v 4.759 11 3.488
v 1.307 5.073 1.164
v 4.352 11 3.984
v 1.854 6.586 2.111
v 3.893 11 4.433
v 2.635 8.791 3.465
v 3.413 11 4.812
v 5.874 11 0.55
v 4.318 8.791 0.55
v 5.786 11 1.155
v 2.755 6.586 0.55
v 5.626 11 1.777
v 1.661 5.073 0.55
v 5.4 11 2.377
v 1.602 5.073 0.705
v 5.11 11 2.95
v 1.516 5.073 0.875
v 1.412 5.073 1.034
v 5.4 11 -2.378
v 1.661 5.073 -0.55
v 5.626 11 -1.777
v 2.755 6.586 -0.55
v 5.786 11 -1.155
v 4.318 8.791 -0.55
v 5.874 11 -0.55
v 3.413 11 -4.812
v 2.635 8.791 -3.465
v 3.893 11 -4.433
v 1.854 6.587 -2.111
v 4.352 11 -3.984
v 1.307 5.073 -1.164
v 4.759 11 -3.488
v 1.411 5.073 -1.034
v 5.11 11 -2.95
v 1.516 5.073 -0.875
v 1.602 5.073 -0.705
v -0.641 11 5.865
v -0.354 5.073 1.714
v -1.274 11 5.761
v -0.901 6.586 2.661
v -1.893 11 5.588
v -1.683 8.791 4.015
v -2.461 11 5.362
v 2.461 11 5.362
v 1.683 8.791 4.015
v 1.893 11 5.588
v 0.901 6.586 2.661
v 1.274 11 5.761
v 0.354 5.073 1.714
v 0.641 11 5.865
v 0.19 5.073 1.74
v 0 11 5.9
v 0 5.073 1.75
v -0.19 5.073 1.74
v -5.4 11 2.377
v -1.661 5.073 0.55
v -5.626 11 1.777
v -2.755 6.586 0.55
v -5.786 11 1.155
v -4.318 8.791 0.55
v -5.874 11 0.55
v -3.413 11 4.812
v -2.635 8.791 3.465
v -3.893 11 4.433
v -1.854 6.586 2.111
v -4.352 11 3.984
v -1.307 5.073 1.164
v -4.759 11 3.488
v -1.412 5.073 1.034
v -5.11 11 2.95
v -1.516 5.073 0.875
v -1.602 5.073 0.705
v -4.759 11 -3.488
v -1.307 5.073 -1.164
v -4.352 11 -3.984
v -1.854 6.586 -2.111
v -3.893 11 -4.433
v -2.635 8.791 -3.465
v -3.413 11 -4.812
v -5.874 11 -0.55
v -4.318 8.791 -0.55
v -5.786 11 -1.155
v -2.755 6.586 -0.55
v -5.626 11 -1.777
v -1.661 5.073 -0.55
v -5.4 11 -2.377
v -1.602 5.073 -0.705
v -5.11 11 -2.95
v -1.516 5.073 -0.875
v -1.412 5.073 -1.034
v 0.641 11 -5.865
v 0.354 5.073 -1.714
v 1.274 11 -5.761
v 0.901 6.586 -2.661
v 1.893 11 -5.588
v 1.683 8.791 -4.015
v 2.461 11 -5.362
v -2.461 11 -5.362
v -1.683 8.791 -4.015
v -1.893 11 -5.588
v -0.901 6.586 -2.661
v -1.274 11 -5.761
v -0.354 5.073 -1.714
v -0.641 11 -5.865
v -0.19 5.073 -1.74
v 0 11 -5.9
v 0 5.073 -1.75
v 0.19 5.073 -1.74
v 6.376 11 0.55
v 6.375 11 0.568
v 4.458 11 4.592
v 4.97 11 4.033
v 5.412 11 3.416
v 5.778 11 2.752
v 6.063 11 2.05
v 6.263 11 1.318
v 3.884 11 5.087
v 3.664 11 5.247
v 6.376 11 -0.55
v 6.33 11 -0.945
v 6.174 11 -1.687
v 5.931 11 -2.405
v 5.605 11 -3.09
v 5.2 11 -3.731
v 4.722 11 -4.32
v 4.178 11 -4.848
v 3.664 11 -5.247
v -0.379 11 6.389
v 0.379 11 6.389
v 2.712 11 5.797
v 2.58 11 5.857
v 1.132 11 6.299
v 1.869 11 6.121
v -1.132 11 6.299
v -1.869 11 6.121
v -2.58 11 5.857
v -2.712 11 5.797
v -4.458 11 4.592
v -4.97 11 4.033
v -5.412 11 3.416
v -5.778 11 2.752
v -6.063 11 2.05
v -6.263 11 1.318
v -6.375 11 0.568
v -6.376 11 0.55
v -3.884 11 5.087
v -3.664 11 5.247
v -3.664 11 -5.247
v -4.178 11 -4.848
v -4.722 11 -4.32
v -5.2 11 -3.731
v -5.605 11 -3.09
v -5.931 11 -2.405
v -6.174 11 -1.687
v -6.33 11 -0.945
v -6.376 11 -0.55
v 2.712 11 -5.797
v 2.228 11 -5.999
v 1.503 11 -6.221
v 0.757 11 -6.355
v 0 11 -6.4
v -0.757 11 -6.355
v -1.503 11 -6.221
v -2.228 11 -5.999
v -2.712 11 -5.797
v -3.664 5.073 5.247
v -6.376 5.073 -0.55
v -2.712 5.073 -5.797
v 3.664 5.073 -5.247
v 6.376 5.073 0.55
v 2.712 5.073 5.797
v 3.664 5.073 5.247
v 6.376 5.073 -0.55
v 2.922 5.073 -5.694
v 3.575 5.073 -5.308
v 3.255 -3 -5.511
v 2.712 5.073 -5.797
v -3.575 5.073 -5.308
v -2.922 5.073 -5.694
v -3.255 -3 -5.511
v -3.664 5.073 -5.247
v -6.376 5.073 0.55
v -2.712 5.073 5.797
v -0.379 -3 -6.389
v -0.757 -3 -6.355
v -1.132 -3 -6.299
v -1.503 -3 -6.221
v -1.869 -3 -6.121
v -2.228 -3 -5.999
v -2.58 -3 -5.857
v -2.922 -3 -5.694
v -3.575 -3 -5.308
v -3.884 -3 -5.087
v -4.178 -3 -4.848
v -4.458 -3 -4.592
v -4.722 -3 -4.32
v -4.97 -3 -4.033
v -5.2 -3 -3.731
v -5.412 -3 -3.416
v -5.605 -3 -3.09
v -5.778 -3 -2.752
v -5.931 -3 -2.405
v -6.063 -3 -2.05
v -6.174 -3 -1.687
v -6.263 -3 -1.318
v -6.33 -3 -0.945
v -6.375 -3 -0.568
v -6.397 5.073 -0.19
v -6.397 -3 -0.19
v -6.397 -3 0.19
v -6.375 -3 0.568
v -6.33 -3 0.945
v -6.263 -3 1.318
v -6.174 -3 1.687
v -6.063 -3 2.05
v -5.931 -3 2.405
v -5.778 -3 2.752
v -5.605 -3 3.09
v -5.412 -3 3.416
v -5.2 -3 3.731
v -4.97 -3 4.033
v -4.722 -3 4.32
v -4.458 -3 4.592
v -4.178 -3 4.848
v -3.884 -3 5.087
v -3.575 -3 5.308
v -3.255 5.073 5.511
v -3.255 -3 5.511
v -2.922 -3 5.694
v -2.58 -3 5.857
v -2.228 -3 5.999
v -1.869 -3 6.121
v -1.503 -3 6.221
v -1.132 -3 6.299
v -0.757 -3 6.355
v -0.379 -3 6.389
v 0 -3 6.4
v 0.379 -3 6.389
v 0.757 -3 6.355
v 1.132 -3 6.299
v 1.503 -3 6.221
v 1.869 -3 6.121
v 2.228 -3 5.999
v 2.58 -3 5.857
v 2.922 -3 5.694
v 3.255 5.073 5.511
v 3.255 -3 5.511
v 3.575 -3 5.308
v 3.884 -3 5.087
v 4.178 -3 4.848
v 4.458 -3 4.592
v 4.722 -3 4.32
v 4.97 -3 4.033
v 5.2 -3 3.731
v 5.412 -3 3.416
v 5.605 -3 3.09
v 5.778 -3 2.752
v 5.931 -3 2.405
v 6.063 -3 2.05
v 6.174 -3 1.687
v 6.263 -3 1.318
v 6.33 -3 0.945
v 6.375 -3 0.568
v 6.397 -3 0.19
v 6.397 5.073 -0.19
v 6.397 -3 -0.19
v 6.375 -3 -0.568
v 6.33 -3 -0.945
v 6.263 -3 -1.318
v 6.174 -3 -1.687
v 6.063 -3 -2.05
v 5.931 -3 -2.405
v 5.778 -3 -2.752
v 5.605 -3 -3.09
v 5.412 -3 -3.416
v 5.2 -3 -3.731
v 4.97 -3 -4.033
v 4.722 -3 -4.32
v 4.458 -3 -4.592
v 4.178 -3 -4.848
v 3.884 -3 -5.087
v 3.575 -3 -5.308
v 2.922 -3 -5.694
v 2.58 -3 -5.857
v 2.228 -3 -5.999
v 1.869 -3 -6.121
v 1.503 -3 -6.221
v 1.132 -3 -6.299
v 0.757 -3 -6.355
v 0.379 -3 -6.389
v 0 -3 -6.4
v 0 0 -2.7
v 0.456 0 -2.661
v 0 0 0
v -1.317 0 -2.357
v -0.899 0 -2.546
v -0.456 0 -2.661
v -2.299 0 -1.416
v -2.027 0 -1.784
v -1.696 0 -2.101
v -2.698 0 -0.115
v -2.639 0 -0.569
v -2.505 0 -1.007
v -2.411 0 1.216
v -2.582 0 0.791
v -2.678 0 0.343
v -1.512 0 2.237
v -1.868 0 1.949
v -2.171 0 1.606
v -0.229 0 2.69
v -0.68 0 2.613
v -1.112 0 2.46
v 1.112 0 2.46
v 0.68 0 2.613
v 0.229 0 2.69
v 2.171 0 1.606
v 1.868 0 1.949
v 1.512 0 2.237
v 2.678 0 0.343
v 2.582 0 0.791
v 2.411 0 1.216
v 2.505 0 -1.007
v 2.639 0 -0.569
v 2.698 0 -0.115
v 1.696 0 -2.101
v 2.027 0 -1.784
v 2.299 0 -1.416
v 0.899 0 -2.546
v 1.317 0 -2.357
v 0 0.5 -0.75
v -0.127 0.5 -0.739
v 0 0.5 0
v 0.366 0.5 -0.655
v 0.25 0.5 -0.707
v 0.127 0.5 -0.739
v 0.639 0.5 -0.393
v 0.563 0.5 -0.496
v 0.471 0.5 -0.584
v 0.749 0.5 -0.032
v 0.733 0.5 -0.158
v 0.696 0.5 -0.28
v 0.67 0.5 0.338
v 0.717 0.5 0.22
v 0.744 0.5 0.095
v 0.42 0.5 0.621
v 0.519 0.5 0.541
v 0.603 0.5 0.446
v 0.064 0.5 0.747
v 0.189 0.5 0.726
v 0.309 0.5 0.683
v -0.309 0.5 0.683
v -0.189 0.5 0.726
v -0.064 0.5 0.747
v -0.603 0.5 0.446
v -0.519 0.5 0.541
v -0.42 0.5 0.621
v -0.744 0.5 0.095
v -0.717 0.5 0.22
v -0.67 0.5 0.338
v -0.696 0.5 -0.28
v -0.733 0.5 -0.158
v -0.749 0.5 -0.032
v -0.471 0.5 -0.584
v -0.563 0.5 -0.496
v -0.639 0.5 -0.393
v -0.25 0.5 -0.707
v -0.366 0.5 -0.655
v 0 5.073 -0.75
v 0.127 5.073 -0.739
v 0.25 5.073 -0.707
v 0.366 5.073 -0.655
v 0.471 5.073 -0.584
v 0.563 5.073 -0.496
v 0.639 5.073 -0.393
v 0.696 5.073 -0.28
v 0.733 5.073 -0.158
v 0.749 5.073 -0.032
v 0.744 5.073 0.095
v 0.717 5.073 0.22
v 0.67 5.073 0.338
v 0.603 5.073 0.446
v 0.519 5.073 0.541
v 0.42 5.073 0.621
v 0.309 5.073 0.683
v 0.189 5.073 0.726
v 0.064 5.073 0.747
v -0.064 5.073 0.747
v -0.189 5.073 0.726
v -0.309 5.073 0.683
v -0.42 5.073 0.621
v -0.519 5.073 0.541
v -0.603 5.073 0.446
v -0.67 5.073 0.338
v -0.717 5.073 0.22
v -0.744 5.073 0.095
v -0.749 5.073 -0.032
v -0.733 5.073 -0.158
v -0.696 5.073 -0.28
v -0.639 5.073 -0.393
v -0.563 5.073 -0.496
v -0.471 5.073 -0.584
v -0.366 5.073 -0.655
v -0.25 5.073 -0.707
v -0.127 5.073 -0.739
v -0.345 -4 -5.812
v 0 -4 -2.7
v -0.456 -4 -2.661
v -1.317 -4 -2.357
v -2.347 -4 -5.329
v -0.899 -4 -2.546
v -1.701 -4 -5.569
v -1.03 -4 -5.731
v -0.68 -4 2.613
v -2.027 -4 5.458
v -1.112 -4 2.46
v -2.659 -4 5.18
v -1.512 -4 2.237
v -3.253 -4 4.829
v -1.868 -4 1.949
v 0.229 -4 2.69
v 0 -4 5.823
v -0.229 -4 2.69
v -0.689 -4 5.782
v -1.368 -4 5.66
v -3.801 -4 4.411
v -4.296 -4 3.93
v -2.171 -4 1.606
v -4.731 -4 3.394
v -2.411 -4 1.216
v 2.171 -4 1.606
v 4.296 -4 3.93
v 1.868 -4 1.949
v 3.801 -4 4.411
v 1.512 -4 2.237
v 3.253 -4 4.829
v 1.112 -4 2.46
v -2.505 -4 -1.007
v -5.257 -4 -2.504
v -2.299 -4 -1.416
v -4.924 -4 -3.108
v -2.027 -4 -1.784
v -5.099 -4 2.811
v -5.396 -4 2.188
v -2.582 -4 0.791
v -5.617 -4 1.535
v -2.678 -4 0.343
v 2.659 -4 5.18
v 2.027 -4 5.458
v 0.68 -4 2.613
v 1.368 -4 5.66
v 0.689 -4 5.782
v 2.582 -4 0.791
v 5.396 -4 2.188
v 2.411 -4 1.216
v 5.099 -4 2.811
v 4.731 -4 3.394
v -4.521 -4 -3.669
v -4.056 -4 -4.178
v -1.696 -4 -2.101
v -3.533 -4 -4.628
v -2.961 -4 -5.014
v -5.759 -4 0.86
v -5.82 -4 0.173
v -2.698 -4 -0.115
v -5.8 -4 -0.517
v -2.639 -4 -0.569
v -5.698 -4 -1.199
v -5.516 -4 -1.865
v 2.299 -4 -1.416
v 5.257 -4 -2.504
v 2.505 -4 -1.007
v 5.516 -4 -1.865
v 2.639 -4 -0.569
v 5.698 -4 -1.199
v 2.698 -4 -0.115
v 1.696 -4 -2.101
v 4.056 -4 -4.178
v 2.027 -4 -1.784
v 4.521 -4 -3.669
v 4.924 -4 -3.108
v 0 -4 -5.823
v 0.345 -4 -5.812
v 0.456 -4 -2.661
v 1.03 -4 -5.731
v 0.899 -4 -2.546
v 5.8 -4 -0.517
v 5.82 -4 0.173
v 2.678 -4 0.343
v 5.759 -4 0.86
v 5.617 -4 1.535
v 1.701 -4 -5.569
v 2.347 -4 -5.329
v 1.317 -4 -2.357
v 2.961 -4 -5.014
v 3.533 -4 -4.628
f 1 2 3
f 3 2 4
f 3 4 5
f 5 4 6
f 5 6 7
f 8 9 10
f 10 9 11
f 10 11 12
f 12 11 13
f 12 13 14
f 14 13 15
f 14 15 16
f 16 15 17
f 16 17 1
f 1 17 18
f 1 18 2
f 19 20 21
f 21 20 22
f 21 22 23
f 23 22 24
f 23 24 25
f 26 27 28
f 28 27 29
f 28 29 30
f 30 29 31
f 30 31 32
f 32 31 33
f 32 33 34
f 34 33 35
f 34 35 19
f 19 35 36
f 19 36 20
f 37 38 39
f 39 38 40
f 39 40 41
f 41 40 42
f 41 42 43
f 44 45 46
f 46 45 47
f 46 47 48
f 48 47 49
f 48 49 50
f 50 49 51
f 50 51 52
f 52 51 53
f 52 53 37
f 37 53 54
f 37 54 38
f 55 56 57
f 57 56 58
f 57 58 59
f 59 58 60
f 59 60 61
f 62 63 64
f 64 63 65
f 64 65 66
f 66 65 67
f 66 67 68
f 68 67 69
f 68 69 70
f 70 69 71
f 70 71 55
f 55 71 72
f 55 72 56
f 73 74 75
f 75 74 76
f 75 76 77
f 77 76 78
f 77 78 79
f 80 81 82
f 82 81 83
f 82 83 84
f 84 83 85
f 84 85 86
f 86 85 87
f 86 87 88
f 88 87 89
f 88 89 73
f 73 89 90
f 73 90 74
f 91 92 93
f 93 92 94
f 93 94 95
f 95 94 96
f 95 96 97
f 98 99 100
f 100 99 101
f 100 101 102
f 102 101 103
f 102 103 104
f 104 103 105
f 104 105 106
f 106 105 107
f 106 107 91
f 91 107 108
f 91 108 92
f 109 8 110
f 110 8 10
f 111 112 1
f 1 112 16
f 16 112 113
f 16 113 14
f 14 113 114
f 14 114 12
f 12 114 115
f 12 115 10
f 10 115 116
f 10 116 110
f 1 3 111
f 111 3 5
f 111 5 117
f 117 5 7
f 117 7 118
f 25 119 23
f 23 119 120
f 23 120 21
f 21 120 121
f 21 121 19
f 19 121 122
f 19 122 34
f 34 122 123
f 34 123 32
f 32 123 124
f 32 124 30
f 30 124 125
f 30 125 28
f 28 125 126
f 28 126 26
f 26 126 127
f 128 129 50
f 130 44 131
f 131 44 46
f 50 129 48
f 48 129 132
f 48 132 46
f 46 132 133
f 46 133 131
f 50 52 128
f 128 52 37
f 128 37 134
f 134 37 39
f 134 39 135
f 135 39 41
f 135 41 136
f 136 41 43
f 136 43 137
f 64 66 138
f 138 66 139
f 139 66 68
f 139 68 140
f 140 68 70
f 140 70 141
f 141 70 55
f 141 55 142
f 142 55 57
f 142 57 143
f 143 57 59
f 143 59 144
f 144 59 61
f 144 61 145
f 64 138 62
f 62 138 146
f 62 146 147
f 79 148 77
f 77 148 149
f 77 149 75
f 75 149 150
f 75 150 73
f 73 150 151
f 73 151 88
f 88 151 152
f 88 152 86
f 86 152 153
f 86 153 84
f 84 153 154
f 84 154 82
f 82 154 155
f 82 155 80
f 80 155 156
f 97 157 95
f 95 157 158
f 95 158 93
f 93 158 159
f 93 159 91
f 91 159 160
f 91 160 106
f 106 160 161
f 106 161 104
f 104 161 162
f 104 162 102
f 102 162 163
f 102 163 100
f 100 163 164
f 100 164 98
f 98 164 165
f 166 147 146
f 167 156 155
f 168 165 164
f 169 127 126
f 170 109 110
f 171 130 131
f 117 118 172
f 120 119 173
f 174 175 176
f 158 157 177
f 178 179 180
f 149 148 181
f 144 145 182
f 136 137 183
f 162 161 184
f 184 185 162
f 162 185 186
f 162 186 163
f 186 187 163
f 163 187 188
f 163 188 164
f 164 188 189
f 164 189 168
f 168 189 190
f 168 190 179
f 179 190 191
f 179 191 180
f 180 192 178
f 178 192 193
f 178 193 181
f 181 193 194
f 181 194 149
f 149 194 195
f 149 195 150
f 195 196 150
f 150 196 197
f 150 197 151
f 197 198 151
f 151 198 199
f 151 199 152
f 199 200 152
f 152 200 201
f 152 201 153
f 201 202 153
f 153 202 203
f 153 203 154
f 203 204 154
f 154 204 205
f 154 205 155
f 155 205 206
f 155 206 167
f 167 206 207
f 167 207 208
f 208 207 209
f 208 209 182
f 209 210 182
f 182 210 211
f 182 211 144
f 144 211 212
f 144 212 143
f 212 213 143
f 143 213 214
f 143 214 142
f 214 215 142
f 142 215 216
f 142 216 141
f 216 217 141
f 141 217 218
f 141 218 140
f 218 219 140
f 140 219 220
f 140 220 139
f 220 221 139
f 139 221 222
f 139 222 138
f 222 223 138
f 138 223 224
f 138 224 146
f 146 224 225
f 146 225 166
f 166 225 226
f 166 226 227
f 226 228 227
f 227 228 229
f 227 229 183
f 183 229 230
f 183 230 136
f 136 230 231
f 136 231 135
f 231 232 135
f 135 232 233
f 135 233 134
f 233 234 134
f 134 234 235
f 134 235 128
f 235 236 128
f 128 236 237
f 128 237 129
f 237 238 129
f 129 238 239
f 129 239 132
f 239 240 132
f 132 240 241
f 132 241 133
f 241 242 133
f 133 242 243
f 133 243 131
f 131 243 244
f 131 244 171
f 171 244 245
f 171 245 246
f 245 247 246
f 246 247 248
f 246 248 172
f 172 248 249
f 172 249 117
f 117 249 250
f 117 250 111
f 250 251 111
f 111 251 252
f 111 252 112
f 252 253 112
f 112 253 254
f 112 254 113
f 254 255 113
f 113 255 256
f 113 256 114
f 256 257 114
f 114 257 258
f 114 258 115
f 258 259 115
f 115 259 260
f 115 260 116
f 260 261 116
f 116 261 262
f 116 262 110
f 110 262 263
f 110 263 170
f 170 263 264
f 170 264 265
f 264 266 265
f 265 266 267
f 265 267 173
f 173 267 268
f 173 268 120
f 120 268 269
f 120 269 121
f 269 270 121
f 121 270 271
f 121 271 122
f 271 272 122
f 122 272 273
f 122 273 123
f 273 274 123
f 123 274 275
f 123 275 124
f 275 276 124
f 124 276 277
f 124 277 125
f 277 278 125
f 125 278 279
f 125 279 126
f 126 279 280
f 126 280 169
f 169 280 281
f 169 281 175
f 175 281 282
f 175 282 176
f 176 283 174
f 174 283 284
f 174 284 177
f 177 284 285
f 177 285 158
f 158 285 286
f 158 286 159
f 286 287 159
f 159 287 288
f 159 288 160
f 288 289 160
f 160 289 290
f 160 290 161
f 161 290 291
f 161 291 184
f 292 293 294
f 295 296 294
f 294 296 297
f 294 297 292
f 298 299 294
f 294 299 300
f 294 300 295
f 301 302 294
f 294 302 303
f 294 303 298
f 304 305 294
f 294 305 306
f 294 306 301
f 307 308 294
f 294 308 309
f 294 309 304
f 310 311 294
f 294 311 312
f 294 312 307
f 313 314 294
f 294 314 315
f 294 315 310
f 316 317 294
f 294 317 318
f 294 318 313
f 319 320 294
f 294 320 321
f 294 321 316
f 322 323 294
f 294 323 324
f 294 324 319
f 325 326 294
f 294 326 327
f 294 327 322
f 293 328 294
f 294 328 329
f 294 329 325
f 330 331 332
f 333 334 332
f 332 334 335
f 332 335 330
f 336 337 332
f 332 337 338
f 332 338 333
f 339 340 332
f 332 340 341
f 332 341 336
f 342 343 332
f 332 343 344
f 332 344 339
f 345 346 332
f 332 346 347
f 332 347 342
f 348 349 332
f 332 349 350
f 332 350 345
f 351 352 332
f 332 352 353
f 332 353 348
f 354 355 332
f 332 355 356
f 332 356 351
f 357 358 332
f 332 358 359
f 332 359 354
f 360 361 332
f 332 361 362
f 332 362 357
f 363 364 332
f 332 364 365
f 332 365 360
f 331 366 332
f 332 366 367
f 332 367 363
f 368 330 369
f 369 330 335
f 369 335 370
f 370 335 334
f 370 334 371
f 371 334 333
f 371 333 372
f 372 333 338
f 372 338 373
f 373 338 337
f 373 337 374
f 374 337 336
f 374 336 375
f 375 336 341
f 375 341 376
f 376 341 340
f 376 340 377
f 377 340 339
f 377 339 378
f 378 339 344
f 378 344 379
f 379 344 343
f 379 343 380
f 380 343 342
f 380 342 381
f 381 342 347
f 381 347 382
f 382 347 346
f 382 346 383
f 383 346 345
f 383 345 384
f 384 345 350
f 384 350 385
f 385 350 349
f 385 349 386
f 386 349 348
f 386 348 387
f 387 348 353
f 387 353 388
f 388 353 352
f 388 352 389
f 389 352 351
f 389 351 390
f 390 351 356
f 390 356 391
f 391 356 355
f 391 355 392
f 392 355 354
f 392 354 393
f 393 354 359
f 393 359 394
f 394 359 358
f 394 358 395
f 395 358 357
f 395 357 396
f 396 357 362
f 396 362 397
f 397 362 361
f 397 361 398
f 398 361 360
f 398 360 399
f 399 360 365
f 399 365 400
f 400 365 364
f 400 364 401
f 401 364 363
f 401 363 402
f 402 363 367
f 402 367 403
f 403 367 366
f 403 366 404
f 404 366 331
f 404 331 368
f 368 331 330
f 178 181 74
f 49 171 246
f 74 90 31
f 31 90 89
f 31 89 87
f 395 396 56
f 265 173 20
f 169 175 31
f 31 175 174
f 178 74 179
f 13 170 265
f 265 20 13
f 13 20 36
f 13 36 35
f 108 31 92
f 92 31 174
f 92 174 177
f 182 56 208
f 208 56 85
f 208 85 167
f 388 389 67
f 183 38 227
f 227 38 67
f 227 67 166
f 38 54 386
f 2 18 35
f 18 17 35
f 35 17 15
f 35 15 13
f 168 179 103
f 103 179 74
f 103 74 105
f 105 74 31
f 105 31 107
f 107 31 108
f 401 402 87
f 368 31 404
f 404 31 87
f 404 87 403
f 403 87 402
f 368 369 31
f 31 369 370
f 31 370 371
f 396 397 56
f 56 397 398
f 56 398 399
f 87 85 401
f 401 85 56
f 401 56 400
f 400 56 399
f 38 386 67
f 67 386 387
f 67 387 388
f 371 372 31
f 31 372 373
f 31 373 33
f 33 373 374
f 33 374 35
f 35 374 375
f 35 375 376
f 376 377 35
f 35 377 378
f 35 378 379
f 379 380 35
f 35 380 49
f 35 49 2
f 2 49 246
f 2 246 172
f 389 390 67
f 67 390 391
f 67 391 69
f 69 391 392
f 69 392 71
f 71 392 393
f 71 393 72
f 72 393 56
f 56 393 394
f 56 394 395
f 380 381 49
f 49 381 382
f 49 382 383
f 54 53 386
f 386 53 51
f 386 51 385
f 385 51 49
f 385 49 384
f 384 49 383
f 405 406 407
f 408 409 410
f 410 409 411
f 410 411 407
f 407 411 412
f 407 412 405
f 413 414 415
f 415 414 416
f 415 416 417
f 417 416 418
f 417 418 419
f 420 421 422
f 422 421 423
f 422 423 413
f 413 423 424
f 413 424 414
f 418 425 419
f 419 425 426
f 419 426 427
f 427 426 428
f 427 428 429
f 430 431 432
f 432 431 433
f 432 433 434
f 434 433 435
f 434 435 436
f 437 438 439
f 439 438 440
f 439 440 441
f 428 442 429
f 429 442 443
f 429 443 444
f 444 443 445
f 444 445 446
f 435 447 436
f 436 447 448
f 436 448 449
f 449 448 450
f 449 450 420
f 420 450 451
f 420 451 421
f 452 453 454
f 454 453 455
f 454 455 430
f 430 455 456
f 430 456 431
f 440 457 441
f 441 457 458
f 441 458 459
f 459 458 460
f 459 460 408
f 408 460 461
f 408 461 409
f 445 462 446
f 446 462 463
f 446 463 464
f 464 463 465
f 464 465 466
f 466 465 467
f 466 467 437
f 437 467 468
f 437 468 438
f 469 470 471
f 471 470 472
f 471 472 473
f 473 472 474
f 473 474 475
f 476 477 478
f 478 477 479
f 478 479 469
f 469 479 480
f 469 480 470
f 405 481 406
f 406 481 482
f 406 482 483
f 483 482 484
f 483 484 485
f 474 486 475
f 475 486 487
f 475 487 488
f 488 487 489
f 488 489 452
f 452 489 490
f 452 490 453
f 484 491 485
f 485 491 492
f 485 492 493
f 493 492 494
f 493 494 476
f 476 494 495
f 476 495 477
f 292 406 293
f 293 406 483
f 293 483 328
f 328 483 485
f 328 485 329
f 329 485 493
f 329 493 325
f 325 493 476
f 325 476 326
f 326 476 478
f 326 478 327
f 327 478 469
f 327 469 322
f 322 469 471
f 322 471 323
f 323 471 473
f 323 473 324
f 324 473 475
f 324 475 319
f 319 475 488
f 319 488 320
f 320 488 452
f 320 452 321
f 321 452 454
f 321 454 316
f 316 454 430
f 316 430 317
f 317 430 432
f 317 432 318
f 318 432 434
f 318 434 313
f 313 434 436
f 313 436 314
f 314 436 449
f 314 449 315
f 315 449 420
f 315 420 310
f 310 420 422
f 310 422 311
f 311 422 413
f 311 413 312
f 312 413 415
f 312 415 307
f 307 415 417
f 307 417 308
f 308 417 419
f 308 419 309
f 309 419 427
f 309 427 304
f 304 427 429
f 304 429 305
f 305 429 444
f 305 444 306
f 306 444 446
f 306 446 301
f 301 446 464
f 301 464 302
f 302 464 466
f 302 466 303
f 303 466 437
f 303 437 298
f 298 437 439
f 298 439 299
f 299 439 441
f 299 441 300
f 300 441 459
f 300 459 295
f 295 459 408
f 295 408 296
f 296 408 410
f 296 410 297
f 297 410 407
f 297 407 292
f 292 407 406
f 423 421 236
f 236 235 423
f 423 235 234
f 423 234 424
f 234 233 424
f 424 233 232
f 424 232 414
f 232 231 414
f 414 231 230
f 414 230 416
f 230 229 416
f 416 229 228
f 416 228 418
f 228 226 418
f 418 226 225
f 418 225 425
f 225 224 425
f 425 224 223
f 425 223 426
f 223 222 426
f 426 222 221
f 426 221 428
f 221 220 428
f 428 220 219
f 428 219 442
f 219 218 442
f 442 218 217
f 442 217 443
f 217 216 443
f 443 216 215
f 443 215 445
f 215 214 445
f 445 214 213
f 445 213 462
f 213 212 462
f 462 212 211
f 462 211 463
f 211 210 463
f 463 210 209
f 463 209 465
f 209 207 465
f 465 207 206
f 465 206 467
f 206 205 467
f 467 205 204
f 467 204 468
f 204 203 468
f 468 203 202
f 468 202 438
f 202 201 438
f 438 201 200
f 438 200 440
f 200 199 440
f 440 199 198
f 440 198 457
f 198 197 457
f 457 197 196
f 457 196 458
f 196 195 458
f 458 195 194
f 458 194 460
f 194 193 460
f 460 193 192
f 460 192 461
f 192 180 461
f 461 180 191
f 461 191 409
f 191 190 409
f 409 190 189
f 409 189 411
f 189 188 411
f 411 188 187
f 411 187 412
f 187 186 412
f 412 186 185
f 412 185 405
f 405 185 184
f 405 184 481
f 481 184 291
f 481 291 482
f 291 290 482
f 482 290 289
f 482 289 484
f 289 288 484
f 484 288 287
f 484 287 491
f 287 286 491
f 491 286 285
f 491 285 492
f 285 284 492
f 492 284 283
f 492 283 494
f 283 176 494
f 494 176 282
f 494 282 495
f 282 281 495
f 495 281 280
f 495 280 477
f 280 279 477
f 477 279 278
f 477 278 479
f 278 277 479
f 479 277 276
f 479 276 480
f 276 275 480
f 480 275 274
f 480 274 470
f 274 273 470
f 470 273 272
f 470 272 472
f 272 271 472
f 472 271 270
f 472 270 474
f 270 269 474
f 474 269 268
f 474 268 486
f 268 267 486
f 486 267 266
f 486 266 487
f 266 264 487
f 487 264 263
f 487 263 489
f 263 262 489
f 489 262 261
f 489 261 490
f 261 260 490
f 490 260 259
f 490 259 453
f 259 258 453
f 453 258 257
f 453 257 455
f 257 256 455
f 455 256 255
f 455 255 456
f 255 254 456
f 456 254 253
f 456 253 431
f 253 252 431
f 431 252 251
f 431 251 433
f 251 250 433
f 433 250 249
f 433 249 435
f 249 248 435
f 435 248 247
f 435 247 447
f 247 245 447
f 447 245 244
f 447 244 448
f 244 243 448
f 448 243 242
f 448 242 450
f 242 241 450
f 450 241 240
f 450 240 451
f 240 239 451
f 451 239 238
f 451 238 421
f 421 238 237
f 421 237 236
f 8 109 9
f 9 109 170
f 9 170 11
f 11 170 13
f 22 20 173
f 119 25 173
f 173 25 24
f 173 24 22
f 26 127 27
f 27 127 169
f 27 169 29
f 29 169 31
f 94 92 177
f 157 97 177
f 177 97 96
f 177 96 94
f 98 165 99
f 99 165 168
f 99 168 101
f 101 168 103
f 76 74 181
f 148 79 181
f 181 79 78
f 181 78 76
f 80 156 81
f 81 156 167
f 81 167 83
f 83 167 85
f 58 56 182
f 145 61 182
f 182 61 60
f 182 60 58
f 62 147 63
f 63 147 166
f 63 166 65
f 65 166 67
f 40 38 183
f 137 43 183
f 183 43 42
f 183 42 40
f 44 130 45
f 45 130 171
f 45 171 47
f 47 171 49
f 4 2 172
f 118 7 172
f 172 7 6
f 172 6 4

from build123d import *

# Parameters (mm, degrees)
CHAMFER1_SIZE      = 1
CHAMFER1_SIZE2     = 0.577350269
SKETCH2_W          = 6.4
SKETCH2_H          = 5.926814228
CUT_EXTRUDE1_DEPTH = 0.55
CIRPATTERN1_COUNT  = 6


with BuildPart() as part:
    # Sketch1 → Revolve1 (revolve)
    with BuildSketch(Plane.XY, mode=Mode.PRIVATE) as revolve1_sk:
        Polygon((0, 0), (0, 0.5), (0.75, 0.5), (0.75, 5.073185772), (1.75, 5.073185772), (5.9, 11), (6.4, 11), (6.4, -4), (2.7, -4), (2.7, 0), align=None)
    revolve(revolve1_sk.sketch.rotate(Axis((0, 0, 0), (0, 1, 0)), 90), axis=Axis((0, 0, 0), (0, 1, 0)))

    # Chamfer1
    chamfer1_edges = [part.edges().sort_by_distance(p)[0] for p in [
        (0, -4, 6.4),
    ]]
    chamfer1_side = [part.faces().sort_by_distance(p)[0] for p in [
        (0, 3.5, 6.4),
    ]]
    chamfer(chamfer1_edges, length=CHAMFER1_SIZE, length2=CHAMFER1_SIZE2, reference=chamfer1_side[0])

    # Sketch2 → Cut-Extrude1 (cut, symmetric)
    with BuildSketch(Plane(origin=(0, 0, 0), x_dir=(-1, 0, 0), z_dir=(0, 0, -1))):
        with Locations((-3.2, 8.036592886)):
            Rectangle(SKETCH2_W, SKETCH2_H)
    cut_extrude1 = extrude(amount=CUT_EXTRUDE1_DEPTH, both=True, mode=Mode.SUBTRACT)

    # CirPattern1: Cut-Extrude1 ×6 about axis
    cirpattern1_axis = Axis((0, 0, 0), (0, 1, 0))
    for i in range(1, CIRPATTERN1_COUNT):
        add(cut_extrude1.rotate(cirpattern1_axis, i * 360 / CIRPATTERN1_COUNT), mode=Mode.SUBTRACT)


solid = part.part
